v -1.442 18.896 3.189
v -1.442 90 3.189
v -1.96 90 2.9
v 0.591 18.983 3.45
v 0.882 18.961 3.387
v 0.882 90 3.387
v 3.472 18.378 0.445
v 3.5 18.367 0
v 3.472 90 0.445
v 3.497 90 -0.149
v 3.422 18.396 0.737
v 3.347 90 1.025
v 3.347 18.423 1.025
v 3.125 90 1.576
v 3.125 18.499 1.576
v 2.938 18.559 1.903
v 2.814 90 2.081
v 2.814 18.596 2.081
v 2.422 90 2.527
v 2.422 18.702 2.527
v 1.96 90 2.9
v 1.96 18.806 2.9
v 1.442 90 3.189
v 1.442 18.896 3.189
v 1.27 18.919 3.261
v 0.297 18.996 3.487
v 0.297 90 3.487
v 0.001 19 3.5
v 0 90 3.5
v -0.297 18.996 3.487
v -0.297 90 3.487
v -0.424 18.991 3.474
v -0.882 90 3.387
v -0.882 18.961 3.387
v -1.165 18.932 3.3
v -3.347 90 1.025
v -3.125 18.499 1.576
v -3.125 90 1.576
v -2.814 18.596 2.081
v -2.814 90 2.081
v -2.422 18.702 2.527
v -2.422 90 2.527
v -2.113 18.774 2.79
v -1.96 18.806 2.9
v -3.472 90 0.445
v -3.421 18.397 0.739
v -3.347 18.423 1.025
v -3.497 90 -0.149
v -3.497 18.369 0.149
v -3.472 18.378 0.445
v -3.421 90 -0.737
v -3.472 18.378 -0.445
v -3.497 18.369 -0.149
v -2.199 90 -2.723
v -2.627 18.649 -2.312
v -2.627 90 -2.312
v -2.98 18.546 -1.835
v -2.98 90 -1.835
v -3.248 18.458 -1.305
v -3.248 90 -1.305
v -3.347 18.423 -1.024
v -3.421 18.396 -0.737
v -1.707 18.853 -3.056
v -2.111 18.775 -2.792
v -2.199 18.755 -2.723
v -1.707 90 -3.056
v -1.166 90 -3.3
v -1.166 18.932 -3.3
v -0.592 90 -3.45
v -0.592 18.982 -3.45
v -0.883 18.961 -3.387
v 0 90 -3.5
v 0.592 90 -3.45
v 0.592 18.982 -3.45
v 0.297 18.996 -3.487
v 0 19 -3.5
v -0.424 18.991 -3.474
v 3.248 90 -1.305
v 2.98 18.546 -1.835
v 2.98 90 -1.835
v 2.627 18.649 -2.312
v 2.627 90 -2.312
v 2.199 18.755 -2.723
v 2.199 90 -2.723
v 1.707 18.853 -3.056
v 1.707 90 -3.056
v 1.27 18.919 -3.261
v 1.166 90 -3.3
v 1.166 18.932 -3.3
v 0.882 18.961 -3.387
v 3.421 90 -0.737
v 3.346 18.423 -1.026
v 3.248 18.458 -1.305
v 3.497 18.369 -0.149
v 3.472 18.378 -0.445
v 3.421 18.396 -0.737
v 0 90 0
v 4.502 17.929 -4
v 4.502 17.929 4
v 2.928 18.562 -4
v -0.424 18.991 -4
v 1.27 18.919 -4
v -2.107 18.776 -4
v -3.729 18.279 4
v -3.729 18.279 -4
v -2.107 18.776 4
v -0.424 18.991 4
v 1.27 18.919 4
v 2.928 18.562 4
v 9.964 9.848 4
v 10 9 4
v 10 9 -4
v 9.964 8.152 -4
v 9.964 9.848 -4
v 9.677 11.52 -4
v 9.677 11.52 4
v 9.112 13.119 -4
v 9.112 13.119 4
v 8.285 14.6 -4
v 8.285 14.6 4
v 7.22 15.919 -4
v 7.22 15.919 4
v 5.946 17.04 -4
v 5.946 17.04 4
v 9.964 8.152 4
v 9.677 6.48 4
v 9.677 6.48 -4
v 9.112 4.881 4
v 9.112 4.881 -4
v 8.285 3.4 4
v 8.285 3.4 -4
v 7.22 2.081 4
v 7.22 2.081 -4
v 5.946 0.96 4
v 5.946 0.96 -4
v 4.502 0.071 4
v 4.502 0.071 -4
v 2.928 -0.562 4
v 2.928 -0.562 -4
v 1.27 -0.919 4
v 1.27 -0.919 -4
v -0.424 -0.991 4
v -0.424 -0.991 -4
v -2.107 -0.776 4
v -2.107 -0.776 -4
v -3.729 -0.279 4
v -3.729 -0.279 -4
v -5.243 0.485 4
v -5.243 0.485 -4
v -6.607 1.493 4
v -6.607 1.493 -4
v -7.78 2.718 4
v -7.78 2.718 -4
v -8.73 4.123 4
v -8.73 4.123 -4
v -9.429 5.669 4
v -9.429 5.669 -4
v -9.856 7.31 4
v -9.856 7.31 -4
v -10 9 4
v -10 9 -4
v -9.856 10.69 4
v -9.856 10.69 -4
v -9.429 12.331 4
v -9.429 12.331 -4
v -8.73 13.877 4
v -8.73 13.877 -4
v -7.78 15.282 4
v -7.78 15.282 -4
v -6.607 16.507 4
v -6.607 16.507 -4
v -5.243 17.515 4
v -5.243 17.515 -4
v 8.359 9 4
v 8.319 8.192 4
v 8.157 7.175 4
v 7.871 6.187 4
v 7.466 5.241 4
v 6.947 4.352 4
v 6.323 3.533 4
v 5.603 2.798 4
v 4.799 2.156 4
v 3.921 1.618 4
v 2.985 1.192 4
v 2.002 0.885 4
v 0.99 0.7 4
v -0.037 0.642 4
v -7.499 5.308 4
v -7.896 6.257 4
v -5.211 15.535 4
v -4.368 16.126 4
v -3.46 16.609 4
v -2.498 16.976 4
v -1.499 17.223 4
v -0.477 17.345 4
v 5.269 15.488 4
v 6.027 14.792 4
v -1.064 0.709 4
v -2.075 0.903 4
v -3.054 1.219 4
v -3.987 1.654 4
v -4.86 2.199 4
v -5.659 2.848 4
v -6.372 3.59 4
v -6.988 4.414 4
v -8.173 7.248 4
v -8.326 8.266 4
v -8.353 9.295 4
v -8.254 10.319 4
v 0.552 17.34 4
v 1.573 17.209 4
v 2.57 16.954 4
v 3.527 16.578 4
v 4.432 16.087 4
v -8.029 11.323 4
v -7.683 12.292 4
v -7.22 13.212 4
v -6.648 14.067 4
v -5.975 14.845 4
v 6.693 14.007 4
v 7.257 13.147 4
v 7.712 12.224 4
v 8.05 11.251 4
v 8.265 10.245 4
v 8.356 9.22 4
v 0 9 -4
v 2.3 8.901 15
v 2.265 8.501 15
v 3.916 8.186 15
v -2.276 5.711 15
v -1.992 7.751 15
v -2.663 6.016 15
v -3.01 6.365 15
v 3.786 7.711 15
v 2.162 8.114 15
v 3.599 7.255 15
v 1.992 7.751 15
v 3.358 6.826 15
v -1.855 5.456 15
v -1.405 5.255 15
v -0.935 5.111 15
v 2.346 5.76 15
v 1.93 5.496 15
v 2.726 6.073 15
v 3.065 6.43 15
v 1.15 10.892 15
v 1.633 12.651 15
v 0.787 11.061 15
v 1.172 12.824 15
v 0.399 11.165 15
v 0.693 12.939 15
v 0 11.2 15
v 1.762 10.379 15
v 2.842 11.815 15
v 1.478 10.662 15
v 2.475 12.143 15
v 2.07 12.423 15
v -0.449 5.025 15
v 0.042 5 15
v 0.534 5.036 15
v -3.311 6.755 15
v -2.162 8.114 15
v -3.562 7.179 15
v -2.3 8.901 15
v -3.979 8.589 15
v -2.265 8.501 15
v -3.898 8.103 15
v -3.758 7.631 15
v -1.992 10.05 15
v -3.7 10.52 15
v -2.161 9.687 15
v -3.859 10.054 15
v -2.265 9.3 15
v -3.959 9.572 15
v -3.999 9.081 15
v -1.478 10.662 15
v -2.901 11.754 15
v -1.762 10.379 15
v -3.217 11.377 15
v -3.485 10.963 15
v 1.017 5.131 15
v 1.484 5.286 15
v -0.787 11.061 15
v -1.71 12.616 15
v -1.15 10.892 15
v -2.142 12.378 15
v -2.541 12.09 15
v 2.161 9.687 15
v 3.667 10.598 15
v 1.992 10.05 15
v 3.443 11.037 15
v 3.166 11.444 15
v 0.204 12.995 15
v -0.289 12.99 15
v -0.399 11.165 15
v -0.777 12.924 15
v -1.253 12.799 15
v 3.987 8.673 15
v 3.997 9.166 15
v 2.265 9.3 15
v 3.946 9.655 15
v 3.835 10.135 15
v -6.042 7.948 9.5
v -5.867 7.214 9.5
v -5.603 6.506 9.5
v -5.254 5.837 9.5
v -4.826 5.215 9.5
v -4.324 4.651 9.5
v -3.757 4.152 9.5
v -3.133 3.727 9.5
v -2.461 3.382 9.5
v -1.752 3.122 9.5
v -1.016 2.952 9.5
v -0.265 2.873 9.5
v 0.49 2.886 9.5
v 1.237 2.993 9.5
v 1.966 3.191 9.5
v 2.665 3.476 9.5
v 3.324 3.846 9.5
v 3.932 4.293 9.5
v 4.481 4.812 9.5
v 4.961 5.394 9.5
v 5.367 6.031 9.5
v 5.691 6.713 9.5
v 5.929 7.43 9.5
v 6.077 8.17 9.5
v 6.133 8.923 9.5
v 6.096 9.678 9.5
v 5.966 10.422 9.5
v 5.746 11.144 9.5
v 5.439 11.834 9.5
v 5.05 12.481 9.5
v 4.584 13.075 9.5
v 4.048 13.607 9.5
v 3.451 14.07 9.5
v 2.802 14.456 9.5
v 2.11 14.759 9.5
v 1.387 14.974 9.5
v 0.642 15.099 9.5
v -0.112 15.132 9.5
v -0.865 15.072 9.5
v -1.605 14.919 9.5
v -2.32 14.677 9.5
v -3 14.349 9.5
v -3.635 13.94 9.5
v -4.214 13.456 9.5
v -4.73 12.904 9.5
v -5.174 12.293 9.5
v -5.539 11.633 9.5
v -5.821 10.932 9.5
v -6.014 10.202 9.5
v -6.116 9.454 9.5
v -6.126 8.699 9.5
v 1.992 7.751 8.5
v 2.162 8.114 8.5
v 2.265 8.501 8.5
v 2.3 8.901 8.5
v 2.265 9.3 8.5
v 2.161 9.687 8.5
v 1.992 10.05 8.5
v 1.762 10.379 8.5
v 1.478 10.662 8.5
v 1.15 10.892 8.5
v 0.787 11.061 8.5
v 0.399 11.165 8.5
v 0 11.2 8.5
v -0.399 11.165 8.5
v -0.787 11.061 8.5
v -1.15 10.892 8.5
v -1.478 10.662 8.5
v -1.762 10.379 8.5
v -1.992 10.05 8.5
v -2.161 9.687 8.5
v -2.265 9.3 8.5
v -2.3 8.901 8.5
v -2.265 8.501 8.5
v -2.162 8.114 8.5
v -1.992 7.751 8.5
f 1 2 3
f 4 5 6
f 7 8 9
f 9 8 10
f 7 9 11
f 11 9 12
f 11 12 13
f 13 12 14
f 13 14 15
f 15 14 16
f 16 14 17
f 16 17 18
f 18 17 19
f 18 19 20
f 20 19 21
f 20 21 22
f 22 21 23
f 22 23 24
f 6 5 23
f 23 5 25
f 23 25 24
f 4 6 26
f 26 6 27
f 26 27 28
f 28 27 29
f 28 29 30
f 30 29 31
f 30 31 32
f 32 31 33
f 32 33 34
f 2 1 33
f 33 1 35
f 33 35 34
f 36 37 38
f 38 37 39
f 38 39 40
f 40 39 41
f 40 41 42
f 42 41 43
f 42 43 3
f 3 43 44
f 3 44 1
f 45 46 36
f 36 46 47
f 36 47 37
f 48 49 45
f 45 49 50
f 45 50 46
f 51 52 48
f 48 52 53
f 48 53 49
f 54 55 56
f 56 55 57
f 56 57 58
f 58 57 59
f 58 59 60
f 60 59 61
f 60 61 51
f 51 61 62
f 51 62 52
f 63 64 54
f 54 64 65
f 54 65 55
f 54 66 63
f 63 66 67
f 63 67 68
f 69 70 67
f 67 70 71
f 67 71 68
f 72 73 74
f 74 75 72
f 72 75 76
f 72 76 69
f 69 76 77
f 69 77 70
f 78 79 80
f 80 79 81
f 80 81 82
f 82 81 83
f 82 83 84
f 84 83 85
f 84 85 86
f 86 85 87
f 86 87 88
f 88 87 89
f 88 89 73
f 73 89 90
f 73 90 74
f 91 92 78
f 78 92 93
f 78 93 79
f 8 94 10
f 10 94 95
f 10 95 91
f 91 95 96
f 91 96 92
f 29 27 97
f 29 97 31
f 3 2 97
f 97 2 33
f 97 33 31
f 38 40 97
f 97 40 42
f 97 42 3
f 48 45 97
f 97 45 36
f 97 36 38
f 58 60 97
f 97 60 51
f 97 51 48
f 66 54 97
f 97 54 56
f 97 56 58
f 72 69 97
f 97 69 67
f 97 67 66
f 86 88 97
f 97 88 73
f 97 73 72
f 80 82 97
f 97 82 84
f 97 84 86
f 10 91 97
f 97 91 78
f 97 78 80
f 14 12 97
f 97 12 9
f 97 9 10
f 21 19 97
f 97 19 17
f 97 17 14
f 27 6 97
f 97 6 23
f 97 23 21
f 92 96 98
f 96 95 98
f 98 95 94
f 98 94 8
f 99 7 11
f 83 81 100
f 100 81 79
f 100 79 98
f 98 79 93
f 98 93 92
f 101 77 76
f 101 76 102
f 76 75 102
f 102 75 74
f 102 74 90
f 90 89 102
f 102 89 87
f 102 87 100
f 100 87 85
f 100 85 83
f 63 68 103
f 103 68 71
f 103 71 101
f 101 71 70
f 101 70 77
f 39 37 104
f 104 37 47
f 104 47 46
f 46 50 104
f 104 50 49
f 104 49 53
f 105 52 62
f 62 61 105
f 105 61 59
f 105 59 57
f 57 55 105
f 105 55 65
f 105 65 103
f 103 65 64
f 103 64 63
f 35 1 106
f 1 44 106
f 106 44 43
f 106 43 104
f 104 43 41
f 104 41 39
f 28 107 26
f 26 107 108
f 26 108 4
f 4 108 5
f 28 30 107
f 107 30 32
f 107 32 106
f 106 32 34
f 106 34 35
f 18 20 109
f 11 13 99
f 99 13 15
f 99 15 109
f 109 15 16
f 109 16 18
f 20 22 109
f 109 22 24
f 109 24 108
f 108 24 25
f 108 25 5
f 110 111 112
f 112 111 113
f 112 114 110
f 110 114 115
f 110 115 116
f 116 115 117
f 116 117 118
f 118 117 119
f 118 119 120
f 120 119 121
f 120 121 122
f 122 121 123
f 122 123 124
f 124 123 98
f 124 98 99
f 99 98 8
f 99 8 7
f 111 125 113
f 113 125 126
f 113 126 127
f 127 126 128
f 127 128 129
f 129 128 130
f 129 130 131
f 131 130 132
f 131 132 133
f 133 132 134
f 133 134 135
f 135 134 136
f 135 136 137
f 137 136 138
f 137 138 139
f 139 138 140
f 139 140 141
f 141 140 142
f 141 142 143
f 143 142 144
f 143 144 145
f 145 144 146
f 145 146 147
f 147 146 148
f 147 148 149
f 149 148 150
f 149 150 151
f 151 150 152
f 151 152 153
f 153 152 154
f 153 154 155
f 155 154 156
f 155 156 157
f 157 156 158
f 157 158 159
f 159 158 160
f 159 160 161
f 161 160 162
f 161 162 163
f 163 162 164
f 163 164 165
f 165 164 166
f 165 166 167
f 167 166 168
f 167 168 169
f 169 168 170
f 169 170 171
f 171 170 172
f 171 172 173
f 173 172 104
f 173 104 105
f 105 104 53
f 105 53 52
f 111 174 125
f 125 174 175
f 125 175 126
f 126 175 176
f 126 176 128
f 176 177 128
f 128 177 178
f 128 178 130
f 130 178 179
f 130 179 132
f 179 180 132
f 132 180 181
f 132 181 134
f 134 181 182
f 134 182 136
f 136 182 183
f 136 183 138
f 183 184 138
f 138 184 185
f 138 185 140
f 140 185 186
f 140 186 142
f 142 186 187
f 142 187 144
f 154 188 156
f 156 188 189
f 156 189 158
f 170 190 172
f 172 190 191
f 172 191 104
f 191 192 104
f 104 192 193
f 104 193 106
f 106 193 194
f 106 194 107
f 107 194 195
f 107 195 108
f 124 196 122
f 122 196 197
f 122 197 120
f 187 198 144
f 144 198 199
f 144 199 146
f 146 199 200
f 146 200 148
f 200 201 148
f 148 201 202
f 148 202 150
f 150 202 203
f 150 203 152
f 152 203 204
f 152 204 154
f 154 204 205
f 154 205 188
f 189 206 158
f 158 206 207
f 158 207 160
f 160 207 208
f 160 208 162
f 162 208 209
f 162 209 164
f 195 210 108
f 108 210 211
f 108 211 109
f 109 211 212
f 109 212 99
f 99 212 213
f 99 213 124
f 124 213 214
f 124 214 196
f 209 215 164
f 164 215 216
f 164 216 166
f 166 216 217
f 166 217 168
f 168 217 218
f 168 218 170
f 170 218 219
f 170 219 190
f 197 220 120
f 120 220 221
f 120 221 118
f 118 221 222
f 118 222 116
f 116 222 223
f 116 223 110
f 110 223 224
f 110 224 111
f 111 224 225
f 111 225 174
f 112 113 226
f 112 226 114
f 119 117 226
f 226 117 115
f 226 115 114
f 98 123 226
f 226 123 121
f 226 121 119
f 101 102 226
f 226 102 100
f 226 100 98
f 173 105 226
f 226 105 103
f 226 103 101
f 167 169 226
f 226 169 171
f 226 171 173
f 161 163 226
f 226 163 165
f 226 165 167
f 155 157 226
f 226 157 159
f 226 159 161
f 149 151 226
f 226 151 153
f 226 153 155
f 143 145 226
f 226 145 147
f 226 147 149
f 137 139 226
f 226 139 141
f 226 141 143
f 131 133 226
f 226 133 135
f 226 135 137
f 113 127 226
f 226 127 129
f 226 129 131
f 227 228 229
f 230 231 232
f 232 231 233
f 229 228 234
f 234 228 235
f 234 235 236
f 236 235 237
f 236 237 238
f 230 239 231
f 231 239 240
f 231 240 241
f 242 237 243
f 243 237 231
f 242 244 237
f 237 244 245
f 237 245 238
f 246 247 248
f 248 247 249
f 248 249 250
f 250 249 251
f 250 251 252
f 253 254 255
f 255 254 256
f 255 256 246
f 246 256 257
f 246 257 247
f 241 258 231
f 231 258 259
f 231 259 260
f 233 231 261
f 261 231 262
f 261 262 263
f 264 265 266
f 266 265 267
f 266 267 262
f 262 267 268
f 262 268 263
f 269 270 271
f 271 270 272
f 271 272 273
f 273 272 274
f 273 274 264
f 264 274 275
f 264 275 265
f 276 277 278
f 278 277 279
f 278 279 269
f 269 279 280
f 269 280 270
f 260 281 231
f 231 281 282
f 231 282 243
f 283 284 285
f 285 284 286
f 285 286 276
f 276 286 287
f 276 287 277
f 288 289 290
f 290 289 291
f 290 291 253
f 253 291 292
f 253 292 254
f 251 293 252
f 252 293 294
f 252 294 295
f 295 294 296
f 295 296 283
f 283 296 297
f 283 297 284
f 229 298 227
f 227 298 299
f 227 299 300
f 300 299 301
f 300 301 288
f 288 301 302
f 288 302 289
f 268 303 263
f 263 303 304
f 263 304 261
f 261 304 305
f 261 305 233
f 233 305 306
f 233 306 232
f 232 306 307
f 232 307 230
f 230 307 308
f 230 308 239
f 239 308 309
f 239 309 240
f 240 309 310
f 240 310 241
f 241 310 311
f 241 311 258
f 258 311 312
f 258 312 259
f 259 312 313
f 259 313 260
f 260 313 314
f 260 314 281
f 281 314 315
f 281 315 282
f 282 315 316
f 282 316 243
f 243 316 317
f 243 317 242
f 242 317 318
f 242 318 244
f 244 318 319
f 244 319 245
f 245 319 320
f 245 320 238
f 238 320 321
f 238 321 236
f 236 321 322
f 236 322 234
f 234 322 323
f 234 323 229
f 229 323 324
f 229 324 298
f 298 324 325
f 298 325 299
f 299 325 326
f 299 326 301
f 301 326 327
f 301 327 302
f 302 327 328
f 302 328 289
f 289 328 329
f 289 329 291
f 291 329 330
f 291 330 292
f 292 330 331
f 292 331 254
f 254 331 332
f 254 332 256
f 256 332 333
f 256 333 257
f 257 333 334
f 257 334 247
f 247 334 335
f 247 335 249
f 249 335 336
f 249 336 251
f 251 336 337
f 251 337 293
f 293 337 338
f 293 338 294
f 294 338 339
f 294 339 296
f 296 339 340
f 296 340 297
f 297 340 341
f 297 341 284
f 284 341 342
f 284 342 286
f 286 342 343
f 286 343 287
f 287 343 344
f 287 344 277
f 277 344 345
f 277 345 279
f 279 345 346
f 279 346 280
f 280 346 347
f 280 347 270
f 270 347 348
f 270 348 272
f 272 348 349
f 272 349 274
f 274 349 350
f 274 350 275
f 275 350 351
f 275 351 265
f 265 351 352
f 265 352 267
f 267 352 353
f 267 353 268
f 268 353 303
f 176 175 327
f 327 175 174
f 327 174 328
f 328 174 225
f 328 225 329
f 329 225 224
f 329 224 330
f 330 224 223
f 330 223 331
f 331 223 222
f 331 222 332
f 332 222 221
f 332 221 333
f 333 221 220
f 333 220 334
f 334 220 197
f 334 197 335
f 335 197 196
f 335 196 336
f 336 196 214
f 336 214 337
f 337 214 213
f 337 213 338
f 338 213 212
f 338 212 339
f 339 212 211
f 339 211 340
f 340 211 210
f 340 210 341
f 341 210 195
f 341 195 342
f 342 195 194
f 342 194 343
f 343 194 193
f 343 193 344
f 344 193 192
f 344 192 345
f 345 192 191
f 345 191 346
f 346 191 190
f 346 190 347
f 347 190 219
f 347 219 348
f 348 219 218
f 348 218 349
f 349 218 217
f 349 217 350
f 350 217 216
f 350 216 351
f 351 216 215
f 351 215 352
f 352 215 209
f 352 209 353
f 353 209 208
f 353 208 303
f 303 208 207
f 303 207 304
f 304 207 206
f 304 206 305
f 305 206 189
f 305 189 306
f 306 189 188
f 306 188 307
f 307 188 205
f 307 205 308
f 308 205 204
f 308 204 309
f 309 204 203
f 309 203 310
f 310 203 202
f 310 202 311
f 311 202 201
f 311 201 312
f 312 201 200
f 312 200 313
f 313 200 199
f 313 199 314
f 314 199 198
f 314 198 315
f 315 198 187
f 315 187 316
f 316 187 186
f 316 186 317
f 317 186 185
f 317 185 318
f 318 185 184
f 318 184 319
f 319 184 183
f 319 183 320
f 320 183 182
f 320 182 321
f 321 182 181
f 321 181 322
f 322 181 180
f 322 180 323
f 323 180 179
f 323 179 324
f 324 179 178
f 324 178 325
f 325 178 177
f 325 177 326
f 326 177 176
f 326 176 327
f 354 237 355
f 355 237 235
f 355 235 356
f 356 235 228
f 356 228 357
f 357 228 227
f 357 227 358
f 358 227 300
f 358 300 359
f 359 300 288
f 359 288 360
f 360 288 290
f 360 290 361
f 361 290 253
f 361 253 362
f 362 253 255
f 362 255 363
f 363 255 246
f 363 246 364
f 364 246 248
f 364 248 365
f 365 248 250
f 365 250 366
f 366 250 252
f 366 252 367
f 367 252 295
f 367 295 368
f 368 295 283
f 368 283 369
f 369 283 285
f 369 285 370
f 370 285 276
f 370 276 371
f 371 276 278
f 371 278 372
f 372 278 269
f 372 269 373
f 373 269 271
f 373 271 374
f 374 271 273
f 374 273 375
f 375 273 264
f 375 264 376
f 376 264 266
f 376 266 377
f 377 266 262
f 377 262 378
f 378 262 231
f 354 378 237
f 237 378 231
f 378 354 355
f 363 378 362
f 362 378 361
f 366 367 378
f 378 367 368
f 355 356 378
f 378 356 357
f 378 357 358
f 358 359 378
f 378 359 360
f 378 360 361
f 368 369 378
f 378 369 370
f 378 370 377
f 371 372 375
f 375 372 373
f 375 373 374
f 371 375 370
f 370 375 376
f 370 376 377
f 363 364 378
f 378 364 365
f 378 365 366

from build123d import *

# Parameters (mm, degrees)
SKETCH1_R           = 3.5
BOSS_EXTRUDE1_DEPTH = 90
SKETCH4_R           = 10
BOSS_EXTRUDE2_DEPTH = 4
BOSS_EXTRUDE3_START = -4
SKETCH4_7_R         = 10
BOSS_EXTRUDE3_DEPTH = 4
CUT_EXTRUDE3_DEPTH  = 6.5


with BuildPart() as part:
    # Sketch1 → Boss-Extrude1 (new body)
    with BuildSketch(Plane(origin=(0, 0, 0), x_dir=(1, 0, 0), z_dir=(0, 1, 0))):
        with Locations(Location((0, 0, 0), (0, 0, 90))):
            Circle(SKETCH1_R)
    extrude(amount=BOSS_EXTRUDE1_DEPTH)

    # Sketch4 → Boss-Extrude2 (add)
    with BuildSketch(Plane.XY):
        with Locations(Location((0, 9, 0), (0, 0, 110.487315115))):
            Circle(SKETCH4_R)
    extrude(amount=BOSS_EXTRUDE2_DEPTH)

    # Sketch4<7> → Boss-Extrude3 (add)
    with BuildSketch(Plane.XY.offset(BOSS_EXTRUDE3_START)):
        with Locations((0, 9)):
            Circle(SKETCH4_7_R)
    extrude(amount=BOSS_EXTRUDE3_DEPTH)

    # Loft2: read off the stored shape, not the designer's step
    # Loft2: loft between two sections, ruled curve by curve
    loft2_from = [
        Edge.make_bspline([(-9.973450677, 9.728204366, 0), (-11.429859409, -10.218696987, 0), (8.517041945, -11.67510572, 0), (9.973450677, 8.271795634, 0), (11.429859409, 28.218696987, 0), (-8.517041945, 29.67510572, 0), (-9.973450677, 9.728204366, 0)], [0, 0, 0, 0, 0.5, 0.5, 0.5, 1, 1, 1, 1], 3, [1, 0.333333333, 0.333333333, 1, 0.333333333, 0.333333333, 1]),
    ]
    loft2_to = [
        Edge.make_bspline([(-3.898107491, 8.102916956, 15), (-2.103941404, 0.306701974, 15), (5.692273579, 2.100868062, 15), (3.898107491, 9.897083044, 15), (2.103941404, 17.693298026, 15), (-5.692273579, 15.899131938, 15), (-3.898107491, 8.102916956, 15)], [0, 0, 0, 0, 0.5, 0.5, 0.5, 1, 1, 1, 1], 3, [1, 0.333333333, 0.333333333, 1, 0.333333333, 0.333333333, 1]),
    ]
    loft2 = Solid(Shell([*[Face.make_surface_from_curves(loft2_from[k], loft2_to[k]) for k in range(1)], Face(Wire(loft2_from)), Face(Wire(loft2_to))]))
    add(loft2)

    # Sketch5 → Cut-Extrude3 (cut)
    with BuildSketch(Plane.XY.offset(15)):
        with BuildLine():
            Line((1.99219482, 7.750633525), (-1.99219482, 7.750633525))
            ThreePointArc((-1.99219482, 7.750633525), (0, 11.200050682), (1.99219482, 7.750633525))
        make_face()
    extrude(amount=-CUT_EXTRUDE3_DEPTH, mode=Mode.SUBTRACT)


solid = part.part
